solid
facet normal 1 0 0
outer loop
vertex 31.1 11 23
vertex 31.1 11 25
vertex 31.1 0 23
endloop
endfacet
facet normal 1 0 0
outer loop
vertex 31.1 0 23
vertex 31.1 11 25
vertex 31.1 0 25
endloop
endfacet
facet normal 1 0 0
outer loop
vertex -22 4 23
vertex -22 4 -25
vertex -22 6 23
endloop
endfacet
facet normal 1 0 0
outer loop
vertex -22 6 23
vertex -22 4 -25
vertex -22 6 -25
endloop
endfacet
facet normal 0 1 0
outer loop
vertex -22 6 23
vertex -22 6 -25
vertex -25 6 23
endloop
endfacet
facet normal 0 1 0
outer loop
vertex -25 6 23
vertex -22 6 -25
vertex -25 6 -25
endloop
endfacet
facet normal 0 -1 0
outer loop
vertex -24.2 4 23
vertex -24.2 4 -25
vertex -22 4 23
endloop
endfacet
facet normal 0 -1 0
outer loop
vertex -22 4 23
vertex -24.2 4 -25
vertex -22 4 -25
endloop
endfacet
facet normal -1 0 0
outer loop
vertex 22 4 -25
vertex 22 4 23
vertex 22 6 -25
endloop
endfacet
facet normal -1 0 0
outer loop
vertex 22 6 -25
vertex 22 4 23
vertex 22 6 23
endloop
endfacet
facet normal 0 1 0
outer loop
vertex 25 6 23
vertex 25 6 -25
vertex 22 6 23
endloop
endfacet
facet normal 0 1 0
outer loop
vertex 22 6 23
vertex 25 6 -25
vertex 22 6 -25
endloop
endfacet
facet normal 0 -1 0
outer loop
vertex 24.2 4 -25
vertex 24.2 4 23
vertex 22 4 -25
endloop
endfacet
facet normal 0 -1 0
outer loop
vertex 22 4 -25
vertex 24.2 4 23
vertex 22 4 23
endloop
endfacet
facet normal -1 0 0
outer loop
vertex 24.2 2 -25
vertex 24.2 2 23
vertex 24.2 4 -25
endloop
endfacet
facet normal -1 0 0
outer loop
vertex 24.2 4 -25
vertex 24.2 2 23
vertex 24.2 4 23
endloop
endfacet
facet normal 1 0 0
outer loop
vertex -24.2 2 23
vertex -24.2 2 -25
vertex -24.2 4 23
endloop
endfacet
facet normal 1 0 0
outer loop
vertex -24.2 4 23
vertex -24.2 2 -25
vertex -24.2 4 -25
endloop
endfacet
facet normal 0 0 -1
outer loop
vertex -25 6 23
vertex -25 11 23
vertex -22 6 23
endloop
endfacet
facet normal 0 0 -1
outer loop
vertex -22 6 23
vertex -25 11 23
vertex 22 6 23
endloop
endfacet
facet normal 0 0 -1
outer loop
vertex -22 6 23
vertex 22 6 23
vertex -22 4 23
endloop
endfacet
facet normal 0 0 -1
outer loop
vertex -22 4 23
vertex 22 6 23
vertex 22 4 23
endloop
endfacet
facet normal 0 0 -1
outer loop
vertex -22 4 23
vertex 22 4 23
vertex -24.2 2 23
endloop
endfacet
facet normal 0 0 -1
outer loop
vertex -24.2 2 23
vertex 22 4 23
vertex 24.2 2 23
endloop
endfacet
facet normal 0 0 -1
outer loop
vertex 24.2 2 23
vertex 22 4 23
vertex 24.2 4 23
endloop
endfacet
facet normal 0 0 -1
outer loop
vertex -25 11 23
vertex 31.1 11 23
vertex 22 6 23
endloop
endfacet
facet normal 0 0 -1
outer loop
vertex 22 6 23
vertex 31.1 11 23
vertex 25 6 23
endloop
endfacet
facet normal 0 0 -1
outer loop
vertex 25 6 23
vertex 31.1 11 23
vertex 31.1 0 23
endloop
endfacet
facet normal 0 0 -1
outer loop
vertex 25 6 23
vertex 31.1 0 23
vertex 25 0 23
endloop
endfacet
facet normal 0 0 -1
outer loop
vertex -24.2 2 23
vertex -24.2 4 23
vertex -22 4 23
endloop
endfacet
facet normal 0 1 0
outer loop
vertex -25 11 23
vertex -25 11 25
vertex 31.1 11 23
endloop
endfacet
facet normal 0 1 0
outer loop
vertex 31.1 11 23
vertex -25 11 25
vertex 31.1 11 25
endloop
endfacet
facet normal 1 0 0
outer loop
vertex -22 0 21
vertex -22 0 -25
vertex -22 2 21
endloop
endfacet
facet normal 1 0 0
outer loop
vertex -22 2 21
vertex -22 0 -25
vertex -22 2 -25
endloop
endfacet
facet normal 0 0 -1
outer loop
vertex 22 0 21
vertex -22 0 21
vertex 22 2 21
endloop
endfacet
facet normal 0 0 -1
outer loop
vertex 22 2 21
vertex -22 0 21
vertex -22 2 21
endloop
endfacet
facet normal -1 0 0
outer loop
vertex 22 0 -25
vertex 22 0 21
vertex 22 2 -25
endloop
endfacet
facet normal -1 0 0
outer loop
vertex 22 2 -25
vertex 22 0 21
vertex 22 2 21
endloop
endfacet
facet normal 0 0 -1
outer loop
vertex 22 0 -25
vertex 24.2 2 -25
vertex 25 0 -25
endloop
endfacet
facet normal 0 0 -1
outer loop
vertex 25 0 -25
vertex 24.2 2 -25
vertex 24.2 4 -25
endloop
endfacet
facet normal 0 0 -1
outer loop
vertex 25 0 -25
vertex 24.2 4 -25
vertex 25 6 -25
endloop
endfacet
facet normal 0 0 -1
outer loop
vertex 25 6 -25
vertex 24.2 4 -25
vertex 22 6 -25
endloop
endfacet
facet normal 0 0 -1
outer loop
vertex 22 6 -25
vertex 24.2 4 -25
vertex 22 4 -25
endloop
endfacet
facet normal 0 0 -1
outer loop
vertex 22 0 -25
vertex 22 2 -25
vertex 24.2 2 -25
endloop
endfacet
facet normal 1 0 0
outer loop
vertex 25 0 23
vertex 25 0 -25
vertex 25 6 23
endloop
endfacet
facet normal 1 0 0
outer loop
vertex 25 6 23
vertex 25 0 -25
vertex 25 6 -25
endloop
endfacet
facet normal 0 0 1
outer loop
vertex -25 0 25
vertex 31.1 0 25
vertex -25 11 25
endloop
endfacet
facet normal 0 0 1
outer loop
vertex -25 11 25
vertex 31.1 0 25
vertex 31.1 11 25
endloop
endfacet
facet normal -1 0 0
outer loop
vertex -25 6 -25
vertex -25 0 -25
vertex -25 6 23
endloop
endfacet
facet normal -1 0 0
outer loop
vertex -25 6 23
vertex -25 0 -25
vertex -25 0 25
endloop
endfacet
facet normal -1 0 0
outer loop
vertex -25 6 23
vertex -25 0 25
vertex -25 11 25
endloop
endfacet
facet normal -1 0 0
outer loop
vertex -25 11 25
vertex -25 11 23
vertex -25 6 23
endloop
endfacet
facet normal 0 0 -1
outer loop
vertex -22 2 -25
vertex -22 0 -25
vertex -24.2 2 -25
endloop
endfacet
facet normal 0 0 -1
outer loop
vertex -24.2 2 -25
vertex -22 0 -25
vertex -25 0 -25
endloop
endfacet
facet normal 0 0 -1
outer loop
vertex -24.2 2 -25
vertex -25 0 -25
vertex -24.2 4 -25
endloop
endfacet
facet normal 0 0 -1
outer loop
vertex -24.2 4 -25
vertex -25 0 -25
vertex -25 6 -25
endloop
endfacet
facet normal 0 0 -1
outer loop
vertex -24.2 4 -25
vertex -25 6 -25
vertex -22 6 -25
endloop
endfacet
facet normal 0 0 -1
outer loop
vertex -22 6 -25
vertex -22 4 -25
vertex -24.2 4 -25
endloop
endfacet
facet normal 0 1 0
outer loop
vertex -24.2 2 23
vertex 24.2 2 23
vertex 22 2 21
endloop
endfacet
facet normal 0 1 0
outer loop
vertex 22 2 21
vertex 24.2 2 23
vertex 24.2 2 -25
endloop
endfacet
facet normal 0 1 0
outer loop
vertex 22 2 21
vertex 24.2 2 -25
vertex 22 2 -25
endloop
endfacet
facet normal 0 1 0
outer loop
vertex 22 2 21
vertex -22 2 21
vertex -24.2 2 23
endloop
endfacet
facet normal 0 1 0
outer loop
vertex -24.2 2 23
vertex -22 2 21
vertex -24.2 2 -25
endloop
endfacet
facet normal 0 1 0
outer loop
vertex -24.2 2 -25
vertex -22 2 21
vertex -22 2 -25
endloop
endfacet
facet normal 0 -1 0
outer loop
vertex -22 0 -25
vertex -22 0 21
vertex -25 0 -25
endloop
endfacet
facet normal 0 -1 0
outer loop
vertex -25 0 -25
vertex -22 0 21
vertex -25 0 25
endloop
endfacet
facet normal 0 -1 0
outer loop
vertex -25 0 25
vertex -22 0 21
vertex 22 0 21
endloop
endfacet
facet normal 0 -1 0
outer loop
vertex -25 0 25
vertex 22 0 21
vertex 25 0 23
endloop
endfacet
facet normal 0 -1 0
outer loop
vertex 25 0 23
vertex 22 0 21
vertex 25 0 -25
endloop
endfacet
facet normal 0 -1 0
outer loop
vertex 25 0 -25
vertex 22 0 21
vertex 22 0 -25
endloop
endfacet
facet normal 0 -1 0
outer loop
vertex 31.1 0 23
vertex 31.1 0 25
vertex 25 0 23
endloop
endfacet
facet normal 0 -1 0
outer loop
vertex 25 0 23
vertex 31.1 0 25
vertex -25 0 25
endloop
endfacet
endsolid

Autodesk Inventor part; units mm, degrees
ref_plane "YZ Plane" through (0, 0, 0) normal (1, 0, 0) x (0, 1, 0)
ref_plane "XZ Plane" through (0, 0, 0) normal (0, 1, 0) x (-1, 0, 0)
ref_plane "XY Plane" through (0, 0, 0) normal (0, 0, 1) x (1, 0, 0)
sketch "Sketch1" plane through (0, 0, 0) normal (0, 1, 0) x (-1, 0, 0)
  line L0 (-25, -25) -> (25, -25)
  line L1 (25, -25) -> (25, 25)
  line L2 (25, 25) -> (-25, 25)
  line L3 (-25, 25) -> (-25, -25)
  line L4 (-25, -25) -> (25, 25) construction
  line L5 (25, -25) -> (-25, 25) construction
  line L6 (25, 21) -> (-25, 21)
  line L7 (22, 21) -> (22, -25)
  line L8 (-22, 21) -> (-22, -25)
  point P0 (0, 0)
  dimension "d0" = 50
  dimension "d1" = 50
  dimension "d2" = 4
  dimension "d3" = 3
  dimension "d4" = 3
extrude "Extrusion1" add sketch "Sketch1" along normal blind 2 contours L3 L6 L8 L0 | L3 L2 L1 L6 | L7 L6 L1 L0
sketch "Sketch2" plane through (0, 2, 0) normal (0, 1, 0) x (1, 0, 0)
  line L0 (-22, 25) -> (-25, 25) projected
  line L1 (-25, 25) -> (-25, -25) projected
  line L2 (-25, -25) -> (25, -25) projected
  line L3 (25, -25) -> (25, 25) projected
  line L4 (25, 25) -> (22, 25) projected
  line L5 (22, 25) -> (22, -21) projected
  line L6 (22, -21) -> (-22, -21) projected
  line L7 (-22, -21) -> (-22, 25) projected
  line L8 (-25, -25) -> (25, -25)
  line L9 (25, -25) -> (25, -23)
  line L10 (25, -23) -> (-25, -23)
  line L11 (-25, -23) -> (-25, -25)
  point P0 (0, 0)
  dimension "d7" = 2
extrude "Extrusion2" add sketch "Sketch2" along normal blind 9 contours L10 L3 L2 L1
sketch "Sketch3" plane through (0, 2, 0) normal (0, 1, 0) x (1, 0, 0)
  line L0 (-25, -23) -> (25, -23) projected
  line L1 (25, -23) -> (25, 25) projected
  line L2 (25, 25) -> (22, 25) projected
  line L3 (22, 25) -> (22, -21) projected
  line L4 (22, -21) -> (-22, -21) projected
  line L5 (-22, -21) -> (-22, 25) projected
  line L6 (-22, 25) -> (-25, 25) projected
  line L7 (-25, 25) -> (-25, -23) projected
  line L8 (-25, -23) -> (-24.2, -23)
  line L9 (-24.2, -23) -> (-24.2, 25)
  line L10 (-24.2, 25) -> (-25, 25)
  line L11 (-25, 25) -> (-25, -23)
  line L12 (25, -23) -> (24.2, -23)
  line L13 (24.2, -23) -> (24.2, 25)
  line L14 (24.2, 25) -> (25, 25)
  line L15 (25, 25) -> (25, -23)
  point P0 (0, 0)
  dimension "d10" = 0.8
  dimension "d11" = 0.8
extrude "Extrusion3" add sketch "Sketch3" along normal blind 2 contours L7 L6 L9 L0 | L13 L2 L1 L0
sketch "Sketch4" plane through (0, 4, 0) normal (0, 1, 0) x (1, 0, 0)
  line L0 (-24.2, 25) -> (-25, 25) projected
  line L1 (-25, 25) -> (-25, -23) projected
  line L2 (-24.2, -23) -> (-25, -23) projected
  line L3 (-24.2, -23) -> (-24.2, 25) projected
  line L4 (24.2, -23) -> (24.2, 25) projected
  line L5 (24.2, 25) -> (22, 25) projected
  line L6 (22, 25) -> (22, -21) projected
  line L7 (22, -21) -> (-22, -21) projected
  line L8 (-22, -21) -> (-22, 25) projected
  line L9 (-22, 25) -> (-24.2, 25) projected
  line L10 (-24.2, 25) -> (-24.2, -23) projected
  line L11 (-24.2, -23) -> (24.2, -23) projected
  line L12 (-25, 25) -> (-22, 25)
  line L13 (-22, 25) -> (-22, -23)
  line L14 (-22, -23) -> (-25, -23)
  line L15 (-25, -23) -> (-25, 25)
  line L16 (25, -23) -> (24.2, -23) projected
  line L17 (25, -23) -> (25, 25) projected
  line L18 (25, 25) -> (24.2, 25) projected
  line L19 (24.2, 25) -> (24.2, -23) projected
  line L20 (25, -23) -> (22, -23)
  line L21 (22, -23) -> (22, 25)
  line L22 (22, 25) -> (25, 25)
  line L23 (25, 25) -> (25, -23)
  point P0 (0, 0)
extrude "Extrusion4" add sketch "Sketch4" along normal blind 2 contours L3 L2 L1 L0 | L9 L8 L13 L11 L3 | L21 L6 L5 L4 L11 | L4 L18 L17 L16
sketch "Sketch5" plane through (25, 0, 25) normal (1, 0, 0) x (0, 0, -1)
  line L0 (0, 11) -> (2, 11) projected
  line L1 (0, 0) -> (0, 11) projected
  line L2 (2, 11) -> (0, 11)
  line L3 (0, 11) -> (0, 0)
  line L4 (0, 0) -> (2, 0)
  line L5 (2, 0) -> (2, 11)
  point P0 (25, 0)
extrude "Extrusion5" add sketch "Sketch5" along normal blind 6.1
properties part number "clip_pcb-command" material "ABS Plastic"
